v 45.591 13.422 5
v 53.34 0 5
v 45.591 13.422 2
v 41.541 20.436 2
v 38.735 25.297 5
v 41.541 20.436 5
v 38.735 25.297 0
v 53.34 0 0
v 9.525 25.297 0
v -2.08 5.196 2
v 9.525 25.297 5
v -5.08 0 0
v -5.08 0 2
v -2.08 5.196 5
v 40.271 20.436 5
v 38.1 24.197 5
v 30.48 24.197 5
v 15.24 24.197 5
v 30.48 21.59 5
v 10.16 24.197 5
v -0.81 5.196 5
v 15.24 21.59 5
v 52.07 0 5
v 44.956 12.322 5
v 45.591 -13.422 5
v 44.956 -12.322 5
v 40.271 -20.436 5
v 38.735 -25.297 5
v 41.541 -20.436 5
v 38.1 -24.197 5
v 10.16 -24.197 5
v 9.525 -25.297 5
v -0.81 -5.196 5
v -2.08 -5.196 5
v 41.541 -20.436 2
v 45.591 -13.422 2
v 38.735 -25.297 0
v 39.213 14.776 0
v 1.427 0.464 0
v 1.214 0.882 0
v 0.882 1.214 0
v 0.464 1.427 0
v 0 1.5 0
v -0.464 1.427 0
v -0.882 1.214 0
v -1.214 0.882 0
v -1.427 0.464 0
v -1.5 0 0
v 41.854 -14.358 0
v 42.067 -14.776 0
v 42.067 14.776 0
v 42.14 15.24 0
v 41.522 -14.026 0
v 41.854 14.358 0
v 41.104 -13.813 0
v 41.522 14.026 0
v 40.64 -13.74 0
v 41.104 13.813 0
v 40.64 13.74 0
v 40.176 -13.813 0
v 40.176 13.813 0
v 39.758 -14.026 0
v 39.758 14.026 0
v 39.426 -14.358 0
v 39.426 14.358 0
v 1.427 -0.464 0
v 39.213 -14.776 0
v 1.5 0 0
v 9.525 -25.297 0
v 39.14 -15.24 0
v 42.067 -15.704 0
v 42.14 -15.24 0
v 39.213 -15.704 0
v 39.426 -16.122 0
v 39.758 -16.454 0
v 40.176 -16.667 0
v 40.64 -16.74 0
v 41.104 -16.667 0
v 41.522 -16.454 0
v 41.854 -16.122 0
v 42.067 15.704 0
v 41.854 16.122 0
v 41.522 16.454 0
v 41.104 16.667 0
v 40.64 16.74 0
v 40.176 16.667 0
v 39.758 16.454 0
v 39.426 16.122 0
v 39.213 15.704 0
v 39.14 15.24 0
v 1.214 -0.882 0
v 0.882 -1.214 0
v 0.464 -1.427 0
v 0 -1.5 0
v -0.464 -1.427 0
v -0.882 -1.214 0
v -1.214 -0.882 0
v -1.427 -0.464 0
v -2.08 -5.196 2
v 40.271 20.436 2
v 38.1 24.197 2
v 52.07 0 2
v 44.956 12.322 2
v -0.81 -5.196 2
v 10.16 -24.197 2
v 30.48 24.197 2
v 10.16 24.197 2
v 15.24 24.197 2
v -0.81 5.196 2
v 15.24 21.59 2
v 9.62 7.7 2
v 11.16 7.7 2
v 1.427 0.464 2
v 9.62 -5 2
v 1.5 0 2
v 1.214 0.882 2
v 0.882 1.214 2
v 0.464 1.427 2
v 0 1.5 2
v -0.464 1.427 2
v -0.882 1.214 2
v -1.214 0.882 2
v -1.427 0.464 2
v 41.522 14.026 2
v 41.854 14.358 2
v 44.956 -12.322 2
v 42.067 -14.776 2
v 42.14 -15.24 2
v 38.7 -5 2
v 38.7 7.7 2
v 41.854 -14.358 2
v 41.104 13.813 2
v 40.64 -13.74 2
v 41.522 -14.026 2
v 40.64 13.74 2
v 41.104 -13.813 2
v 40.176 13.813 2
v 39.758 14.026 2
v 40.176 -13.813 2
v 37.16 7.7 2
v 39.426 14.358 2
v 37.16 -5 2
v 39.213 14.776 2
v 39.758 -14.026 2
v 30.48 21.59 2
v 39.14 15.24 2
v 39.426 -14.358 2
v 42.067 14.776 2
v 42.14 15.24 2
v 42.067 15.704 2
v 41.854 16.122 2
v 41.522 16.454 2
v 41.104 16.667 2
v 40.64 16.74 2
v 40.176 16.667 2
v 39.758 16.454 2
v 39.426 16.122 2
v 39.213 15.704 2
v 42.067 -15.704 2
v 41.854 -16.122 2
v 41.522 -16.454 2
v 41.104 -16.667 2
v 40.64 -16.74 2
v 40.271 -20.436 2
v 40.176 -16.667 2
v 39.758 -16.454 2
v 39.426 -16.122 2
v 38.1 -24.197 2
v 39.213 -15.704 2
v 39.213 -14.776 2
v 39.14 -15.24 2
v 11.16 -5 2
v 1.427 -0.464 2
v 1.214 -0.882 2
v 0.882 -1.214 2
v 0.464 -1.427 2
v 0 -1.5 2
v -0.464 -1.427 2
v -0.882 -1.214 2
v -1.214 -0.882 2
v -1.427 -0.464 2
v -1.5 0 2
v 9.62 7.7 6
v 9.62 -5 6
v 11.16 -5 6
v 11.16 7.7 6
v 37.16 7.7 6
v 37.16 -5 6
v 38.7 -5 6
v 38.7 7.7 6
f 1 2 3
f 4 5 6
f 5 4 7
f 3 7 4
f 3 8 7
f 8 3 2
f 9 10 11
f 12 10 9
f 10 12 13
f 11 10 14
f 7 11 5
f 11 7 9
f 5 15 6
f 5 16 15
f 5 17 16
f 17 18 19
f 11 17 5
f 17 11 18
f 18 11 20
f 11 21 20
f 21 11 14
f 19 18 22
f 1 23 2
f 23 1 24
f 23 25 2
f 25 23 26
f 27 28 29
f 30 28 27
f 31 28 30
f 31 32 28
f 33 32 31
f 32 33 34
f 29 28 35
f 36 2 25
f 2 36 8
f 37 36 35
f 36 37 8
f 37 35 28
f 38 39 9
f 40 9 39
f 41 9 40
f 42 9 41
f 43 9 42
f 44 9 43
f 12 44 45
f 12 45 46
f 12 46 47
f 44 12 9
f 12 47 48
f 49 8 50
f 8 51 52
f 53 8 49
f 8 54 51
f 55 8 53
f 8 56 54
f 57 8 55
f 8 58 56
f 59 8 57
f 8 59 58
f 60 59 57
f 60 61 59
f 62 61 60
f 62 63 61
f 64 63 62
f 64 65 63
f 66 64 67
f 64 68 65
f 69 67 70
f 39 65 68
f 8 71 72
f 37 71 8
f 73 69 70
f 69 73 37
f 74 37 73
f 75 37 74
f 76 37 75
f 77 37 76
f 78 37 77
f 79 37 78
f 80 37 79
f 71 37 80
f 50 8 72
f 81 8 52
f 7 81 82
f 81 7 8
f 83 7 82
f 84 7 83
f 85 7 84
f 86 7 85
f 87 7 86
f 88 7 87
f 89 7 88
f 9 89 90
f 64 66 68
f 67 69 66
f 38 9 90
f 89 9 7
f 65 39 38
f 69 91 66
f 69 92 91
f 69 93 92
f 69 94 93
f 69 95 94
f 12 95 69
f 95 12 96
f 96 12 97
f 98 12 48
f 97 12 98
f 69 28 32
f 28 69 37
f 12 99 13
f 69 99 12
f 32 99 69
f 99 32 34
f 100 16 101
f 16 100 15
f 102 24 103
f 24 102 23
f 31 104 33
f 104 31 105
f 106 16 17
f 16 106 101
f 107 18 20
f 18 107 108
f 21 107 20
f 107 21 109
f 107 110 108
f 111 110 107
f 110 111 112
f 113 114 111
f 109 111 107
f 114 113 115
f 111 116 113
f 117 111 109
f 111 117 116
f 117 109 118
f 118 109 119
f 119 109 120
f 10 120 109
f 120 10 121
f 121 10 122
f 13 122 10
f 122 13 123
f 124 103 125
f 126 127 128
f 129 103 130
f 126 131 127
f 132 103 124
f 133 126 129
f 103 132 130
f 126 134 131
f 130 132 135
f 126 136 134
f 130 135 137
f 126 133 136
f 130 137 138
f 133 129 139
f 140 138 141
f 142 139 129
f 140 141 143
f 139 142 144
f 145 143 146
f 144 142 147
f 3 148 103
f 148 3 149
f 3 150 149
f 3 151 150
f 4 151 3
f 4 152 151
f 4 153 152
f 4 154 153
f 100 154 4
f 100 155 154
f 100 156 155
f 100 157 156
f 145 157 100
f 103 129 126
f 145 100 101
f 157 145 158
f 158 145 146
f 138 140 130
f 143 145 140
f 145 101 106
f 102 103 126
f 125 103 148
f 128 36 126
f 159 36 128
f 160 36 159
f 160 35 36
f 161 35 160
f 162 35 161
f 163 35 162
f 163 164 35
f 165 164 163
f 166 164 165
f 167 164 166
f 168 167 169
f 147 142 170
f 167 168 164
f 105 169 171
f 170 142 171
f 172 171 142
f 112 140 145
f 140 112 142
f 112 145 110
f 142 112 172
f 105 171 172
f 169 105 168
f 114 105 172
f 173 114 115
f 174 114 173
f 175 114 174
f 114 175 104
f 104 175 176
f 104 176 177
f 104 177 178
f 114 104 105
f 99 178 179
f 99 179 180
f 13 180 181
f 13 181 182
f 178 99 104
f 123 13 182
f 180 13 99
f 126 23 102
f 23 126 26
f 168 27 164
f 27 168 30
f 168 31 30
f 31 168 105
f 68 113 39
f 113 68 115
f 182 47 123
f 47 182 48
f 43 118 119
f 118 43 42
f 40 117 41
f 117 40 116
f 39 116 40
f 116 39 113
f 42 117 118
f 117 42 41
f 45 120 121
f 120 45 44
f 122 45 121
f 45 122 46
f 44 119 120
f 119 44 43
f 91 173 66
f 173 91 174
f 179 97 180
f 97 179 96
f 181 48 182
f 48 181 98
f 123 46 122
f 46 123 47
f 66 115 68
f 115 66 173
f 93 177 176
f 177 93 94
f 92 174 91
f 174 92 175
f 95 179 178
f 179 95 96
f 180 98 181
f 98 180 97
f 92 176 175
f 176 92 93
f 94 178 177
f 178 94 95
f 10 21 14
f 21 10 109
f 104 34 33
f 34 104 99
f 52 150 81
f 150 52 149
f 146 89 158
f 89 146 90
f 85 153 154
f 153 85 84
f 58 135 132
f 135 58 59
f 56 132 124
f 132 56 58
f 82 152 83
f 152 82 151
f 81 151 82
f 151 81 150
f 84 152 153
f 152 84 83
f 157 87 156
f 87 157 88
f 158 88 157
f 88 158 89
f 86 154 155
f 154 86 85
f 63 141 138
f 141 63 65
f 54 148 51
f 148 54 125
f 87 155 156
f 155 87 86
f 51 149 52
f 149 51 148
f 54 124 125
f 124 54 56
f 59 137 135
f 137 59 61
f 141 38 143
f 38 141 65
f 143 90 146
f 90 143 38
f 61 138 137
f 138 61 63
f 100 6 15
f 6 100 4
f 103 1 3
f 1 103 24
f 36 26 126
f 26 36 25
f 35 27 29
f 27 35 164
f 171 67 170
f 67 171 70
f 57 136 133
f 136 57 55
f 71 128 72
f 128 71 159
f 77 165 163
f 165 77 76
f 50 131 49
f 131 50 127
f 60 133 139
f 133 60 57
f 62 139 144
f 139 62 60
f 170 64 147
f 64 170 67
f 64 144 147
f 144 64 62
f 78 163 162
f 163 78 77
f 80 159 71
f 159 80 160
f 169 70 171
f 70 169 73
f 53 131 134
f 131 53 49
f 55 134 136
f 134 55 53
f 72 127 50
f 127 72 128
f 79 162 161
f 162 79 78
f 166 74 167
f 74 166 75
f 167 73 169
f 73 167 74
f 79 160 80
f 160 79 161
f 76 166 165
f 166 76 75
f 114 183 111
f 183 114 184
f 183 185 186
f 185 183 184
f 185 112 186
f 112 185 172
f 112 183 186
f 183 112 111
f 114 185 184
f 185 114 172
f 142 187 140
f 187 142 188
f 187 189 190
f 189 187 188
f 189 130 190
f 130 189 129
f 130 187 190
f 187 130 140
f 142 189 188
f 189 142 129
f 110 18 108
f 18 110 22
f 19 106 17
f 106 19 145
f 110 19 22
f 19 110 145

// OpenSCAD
//espesor da base
eB = 2;
//radio do recorte dos furados
rR = 6;
//placa para soster as baterías
difference(){
//base e borde
translate([2.54*9.5,0,0]) cylinder(r=23*2.54/2,h=5,$fn=6);
translate([2.54*9.5,0,eB]) cylinder(r=22*2.54/2,h=6,$fn=6);
//furados e recorte da beira
//furado so
cylinder(r=1.5, h=10, $fn=20);
translate([0,0,eB]) cylinder(r=rR, h=10, $fn=6);
//furado
translate([16*2.54,6*2.54,0]) cylinder(r=1.5, h=10, $fn=20);
translate([16*2.54,6*2.54,eB]) cylinder(r=rR, h=10, $fn=6);
//furado
translate([16*2.54,-6*2.54,eB]) cylinder(r=rR, h=10, $fn=6);
translate([16*2.54,-6*2.54,0]) cylinder(r=1.5, h=10, $fn=20);

}

translate([2.54*3+2,-5,0]) separadores();

module separadores(){
cube([1.54,2.54*5,6]);
translate([26+1.54,0,0]) cube([1.54,2.54*5,6]);
}
translate([6*2.54,8.5*2.54,0]) cube([2.54*6,2.9,5]);
